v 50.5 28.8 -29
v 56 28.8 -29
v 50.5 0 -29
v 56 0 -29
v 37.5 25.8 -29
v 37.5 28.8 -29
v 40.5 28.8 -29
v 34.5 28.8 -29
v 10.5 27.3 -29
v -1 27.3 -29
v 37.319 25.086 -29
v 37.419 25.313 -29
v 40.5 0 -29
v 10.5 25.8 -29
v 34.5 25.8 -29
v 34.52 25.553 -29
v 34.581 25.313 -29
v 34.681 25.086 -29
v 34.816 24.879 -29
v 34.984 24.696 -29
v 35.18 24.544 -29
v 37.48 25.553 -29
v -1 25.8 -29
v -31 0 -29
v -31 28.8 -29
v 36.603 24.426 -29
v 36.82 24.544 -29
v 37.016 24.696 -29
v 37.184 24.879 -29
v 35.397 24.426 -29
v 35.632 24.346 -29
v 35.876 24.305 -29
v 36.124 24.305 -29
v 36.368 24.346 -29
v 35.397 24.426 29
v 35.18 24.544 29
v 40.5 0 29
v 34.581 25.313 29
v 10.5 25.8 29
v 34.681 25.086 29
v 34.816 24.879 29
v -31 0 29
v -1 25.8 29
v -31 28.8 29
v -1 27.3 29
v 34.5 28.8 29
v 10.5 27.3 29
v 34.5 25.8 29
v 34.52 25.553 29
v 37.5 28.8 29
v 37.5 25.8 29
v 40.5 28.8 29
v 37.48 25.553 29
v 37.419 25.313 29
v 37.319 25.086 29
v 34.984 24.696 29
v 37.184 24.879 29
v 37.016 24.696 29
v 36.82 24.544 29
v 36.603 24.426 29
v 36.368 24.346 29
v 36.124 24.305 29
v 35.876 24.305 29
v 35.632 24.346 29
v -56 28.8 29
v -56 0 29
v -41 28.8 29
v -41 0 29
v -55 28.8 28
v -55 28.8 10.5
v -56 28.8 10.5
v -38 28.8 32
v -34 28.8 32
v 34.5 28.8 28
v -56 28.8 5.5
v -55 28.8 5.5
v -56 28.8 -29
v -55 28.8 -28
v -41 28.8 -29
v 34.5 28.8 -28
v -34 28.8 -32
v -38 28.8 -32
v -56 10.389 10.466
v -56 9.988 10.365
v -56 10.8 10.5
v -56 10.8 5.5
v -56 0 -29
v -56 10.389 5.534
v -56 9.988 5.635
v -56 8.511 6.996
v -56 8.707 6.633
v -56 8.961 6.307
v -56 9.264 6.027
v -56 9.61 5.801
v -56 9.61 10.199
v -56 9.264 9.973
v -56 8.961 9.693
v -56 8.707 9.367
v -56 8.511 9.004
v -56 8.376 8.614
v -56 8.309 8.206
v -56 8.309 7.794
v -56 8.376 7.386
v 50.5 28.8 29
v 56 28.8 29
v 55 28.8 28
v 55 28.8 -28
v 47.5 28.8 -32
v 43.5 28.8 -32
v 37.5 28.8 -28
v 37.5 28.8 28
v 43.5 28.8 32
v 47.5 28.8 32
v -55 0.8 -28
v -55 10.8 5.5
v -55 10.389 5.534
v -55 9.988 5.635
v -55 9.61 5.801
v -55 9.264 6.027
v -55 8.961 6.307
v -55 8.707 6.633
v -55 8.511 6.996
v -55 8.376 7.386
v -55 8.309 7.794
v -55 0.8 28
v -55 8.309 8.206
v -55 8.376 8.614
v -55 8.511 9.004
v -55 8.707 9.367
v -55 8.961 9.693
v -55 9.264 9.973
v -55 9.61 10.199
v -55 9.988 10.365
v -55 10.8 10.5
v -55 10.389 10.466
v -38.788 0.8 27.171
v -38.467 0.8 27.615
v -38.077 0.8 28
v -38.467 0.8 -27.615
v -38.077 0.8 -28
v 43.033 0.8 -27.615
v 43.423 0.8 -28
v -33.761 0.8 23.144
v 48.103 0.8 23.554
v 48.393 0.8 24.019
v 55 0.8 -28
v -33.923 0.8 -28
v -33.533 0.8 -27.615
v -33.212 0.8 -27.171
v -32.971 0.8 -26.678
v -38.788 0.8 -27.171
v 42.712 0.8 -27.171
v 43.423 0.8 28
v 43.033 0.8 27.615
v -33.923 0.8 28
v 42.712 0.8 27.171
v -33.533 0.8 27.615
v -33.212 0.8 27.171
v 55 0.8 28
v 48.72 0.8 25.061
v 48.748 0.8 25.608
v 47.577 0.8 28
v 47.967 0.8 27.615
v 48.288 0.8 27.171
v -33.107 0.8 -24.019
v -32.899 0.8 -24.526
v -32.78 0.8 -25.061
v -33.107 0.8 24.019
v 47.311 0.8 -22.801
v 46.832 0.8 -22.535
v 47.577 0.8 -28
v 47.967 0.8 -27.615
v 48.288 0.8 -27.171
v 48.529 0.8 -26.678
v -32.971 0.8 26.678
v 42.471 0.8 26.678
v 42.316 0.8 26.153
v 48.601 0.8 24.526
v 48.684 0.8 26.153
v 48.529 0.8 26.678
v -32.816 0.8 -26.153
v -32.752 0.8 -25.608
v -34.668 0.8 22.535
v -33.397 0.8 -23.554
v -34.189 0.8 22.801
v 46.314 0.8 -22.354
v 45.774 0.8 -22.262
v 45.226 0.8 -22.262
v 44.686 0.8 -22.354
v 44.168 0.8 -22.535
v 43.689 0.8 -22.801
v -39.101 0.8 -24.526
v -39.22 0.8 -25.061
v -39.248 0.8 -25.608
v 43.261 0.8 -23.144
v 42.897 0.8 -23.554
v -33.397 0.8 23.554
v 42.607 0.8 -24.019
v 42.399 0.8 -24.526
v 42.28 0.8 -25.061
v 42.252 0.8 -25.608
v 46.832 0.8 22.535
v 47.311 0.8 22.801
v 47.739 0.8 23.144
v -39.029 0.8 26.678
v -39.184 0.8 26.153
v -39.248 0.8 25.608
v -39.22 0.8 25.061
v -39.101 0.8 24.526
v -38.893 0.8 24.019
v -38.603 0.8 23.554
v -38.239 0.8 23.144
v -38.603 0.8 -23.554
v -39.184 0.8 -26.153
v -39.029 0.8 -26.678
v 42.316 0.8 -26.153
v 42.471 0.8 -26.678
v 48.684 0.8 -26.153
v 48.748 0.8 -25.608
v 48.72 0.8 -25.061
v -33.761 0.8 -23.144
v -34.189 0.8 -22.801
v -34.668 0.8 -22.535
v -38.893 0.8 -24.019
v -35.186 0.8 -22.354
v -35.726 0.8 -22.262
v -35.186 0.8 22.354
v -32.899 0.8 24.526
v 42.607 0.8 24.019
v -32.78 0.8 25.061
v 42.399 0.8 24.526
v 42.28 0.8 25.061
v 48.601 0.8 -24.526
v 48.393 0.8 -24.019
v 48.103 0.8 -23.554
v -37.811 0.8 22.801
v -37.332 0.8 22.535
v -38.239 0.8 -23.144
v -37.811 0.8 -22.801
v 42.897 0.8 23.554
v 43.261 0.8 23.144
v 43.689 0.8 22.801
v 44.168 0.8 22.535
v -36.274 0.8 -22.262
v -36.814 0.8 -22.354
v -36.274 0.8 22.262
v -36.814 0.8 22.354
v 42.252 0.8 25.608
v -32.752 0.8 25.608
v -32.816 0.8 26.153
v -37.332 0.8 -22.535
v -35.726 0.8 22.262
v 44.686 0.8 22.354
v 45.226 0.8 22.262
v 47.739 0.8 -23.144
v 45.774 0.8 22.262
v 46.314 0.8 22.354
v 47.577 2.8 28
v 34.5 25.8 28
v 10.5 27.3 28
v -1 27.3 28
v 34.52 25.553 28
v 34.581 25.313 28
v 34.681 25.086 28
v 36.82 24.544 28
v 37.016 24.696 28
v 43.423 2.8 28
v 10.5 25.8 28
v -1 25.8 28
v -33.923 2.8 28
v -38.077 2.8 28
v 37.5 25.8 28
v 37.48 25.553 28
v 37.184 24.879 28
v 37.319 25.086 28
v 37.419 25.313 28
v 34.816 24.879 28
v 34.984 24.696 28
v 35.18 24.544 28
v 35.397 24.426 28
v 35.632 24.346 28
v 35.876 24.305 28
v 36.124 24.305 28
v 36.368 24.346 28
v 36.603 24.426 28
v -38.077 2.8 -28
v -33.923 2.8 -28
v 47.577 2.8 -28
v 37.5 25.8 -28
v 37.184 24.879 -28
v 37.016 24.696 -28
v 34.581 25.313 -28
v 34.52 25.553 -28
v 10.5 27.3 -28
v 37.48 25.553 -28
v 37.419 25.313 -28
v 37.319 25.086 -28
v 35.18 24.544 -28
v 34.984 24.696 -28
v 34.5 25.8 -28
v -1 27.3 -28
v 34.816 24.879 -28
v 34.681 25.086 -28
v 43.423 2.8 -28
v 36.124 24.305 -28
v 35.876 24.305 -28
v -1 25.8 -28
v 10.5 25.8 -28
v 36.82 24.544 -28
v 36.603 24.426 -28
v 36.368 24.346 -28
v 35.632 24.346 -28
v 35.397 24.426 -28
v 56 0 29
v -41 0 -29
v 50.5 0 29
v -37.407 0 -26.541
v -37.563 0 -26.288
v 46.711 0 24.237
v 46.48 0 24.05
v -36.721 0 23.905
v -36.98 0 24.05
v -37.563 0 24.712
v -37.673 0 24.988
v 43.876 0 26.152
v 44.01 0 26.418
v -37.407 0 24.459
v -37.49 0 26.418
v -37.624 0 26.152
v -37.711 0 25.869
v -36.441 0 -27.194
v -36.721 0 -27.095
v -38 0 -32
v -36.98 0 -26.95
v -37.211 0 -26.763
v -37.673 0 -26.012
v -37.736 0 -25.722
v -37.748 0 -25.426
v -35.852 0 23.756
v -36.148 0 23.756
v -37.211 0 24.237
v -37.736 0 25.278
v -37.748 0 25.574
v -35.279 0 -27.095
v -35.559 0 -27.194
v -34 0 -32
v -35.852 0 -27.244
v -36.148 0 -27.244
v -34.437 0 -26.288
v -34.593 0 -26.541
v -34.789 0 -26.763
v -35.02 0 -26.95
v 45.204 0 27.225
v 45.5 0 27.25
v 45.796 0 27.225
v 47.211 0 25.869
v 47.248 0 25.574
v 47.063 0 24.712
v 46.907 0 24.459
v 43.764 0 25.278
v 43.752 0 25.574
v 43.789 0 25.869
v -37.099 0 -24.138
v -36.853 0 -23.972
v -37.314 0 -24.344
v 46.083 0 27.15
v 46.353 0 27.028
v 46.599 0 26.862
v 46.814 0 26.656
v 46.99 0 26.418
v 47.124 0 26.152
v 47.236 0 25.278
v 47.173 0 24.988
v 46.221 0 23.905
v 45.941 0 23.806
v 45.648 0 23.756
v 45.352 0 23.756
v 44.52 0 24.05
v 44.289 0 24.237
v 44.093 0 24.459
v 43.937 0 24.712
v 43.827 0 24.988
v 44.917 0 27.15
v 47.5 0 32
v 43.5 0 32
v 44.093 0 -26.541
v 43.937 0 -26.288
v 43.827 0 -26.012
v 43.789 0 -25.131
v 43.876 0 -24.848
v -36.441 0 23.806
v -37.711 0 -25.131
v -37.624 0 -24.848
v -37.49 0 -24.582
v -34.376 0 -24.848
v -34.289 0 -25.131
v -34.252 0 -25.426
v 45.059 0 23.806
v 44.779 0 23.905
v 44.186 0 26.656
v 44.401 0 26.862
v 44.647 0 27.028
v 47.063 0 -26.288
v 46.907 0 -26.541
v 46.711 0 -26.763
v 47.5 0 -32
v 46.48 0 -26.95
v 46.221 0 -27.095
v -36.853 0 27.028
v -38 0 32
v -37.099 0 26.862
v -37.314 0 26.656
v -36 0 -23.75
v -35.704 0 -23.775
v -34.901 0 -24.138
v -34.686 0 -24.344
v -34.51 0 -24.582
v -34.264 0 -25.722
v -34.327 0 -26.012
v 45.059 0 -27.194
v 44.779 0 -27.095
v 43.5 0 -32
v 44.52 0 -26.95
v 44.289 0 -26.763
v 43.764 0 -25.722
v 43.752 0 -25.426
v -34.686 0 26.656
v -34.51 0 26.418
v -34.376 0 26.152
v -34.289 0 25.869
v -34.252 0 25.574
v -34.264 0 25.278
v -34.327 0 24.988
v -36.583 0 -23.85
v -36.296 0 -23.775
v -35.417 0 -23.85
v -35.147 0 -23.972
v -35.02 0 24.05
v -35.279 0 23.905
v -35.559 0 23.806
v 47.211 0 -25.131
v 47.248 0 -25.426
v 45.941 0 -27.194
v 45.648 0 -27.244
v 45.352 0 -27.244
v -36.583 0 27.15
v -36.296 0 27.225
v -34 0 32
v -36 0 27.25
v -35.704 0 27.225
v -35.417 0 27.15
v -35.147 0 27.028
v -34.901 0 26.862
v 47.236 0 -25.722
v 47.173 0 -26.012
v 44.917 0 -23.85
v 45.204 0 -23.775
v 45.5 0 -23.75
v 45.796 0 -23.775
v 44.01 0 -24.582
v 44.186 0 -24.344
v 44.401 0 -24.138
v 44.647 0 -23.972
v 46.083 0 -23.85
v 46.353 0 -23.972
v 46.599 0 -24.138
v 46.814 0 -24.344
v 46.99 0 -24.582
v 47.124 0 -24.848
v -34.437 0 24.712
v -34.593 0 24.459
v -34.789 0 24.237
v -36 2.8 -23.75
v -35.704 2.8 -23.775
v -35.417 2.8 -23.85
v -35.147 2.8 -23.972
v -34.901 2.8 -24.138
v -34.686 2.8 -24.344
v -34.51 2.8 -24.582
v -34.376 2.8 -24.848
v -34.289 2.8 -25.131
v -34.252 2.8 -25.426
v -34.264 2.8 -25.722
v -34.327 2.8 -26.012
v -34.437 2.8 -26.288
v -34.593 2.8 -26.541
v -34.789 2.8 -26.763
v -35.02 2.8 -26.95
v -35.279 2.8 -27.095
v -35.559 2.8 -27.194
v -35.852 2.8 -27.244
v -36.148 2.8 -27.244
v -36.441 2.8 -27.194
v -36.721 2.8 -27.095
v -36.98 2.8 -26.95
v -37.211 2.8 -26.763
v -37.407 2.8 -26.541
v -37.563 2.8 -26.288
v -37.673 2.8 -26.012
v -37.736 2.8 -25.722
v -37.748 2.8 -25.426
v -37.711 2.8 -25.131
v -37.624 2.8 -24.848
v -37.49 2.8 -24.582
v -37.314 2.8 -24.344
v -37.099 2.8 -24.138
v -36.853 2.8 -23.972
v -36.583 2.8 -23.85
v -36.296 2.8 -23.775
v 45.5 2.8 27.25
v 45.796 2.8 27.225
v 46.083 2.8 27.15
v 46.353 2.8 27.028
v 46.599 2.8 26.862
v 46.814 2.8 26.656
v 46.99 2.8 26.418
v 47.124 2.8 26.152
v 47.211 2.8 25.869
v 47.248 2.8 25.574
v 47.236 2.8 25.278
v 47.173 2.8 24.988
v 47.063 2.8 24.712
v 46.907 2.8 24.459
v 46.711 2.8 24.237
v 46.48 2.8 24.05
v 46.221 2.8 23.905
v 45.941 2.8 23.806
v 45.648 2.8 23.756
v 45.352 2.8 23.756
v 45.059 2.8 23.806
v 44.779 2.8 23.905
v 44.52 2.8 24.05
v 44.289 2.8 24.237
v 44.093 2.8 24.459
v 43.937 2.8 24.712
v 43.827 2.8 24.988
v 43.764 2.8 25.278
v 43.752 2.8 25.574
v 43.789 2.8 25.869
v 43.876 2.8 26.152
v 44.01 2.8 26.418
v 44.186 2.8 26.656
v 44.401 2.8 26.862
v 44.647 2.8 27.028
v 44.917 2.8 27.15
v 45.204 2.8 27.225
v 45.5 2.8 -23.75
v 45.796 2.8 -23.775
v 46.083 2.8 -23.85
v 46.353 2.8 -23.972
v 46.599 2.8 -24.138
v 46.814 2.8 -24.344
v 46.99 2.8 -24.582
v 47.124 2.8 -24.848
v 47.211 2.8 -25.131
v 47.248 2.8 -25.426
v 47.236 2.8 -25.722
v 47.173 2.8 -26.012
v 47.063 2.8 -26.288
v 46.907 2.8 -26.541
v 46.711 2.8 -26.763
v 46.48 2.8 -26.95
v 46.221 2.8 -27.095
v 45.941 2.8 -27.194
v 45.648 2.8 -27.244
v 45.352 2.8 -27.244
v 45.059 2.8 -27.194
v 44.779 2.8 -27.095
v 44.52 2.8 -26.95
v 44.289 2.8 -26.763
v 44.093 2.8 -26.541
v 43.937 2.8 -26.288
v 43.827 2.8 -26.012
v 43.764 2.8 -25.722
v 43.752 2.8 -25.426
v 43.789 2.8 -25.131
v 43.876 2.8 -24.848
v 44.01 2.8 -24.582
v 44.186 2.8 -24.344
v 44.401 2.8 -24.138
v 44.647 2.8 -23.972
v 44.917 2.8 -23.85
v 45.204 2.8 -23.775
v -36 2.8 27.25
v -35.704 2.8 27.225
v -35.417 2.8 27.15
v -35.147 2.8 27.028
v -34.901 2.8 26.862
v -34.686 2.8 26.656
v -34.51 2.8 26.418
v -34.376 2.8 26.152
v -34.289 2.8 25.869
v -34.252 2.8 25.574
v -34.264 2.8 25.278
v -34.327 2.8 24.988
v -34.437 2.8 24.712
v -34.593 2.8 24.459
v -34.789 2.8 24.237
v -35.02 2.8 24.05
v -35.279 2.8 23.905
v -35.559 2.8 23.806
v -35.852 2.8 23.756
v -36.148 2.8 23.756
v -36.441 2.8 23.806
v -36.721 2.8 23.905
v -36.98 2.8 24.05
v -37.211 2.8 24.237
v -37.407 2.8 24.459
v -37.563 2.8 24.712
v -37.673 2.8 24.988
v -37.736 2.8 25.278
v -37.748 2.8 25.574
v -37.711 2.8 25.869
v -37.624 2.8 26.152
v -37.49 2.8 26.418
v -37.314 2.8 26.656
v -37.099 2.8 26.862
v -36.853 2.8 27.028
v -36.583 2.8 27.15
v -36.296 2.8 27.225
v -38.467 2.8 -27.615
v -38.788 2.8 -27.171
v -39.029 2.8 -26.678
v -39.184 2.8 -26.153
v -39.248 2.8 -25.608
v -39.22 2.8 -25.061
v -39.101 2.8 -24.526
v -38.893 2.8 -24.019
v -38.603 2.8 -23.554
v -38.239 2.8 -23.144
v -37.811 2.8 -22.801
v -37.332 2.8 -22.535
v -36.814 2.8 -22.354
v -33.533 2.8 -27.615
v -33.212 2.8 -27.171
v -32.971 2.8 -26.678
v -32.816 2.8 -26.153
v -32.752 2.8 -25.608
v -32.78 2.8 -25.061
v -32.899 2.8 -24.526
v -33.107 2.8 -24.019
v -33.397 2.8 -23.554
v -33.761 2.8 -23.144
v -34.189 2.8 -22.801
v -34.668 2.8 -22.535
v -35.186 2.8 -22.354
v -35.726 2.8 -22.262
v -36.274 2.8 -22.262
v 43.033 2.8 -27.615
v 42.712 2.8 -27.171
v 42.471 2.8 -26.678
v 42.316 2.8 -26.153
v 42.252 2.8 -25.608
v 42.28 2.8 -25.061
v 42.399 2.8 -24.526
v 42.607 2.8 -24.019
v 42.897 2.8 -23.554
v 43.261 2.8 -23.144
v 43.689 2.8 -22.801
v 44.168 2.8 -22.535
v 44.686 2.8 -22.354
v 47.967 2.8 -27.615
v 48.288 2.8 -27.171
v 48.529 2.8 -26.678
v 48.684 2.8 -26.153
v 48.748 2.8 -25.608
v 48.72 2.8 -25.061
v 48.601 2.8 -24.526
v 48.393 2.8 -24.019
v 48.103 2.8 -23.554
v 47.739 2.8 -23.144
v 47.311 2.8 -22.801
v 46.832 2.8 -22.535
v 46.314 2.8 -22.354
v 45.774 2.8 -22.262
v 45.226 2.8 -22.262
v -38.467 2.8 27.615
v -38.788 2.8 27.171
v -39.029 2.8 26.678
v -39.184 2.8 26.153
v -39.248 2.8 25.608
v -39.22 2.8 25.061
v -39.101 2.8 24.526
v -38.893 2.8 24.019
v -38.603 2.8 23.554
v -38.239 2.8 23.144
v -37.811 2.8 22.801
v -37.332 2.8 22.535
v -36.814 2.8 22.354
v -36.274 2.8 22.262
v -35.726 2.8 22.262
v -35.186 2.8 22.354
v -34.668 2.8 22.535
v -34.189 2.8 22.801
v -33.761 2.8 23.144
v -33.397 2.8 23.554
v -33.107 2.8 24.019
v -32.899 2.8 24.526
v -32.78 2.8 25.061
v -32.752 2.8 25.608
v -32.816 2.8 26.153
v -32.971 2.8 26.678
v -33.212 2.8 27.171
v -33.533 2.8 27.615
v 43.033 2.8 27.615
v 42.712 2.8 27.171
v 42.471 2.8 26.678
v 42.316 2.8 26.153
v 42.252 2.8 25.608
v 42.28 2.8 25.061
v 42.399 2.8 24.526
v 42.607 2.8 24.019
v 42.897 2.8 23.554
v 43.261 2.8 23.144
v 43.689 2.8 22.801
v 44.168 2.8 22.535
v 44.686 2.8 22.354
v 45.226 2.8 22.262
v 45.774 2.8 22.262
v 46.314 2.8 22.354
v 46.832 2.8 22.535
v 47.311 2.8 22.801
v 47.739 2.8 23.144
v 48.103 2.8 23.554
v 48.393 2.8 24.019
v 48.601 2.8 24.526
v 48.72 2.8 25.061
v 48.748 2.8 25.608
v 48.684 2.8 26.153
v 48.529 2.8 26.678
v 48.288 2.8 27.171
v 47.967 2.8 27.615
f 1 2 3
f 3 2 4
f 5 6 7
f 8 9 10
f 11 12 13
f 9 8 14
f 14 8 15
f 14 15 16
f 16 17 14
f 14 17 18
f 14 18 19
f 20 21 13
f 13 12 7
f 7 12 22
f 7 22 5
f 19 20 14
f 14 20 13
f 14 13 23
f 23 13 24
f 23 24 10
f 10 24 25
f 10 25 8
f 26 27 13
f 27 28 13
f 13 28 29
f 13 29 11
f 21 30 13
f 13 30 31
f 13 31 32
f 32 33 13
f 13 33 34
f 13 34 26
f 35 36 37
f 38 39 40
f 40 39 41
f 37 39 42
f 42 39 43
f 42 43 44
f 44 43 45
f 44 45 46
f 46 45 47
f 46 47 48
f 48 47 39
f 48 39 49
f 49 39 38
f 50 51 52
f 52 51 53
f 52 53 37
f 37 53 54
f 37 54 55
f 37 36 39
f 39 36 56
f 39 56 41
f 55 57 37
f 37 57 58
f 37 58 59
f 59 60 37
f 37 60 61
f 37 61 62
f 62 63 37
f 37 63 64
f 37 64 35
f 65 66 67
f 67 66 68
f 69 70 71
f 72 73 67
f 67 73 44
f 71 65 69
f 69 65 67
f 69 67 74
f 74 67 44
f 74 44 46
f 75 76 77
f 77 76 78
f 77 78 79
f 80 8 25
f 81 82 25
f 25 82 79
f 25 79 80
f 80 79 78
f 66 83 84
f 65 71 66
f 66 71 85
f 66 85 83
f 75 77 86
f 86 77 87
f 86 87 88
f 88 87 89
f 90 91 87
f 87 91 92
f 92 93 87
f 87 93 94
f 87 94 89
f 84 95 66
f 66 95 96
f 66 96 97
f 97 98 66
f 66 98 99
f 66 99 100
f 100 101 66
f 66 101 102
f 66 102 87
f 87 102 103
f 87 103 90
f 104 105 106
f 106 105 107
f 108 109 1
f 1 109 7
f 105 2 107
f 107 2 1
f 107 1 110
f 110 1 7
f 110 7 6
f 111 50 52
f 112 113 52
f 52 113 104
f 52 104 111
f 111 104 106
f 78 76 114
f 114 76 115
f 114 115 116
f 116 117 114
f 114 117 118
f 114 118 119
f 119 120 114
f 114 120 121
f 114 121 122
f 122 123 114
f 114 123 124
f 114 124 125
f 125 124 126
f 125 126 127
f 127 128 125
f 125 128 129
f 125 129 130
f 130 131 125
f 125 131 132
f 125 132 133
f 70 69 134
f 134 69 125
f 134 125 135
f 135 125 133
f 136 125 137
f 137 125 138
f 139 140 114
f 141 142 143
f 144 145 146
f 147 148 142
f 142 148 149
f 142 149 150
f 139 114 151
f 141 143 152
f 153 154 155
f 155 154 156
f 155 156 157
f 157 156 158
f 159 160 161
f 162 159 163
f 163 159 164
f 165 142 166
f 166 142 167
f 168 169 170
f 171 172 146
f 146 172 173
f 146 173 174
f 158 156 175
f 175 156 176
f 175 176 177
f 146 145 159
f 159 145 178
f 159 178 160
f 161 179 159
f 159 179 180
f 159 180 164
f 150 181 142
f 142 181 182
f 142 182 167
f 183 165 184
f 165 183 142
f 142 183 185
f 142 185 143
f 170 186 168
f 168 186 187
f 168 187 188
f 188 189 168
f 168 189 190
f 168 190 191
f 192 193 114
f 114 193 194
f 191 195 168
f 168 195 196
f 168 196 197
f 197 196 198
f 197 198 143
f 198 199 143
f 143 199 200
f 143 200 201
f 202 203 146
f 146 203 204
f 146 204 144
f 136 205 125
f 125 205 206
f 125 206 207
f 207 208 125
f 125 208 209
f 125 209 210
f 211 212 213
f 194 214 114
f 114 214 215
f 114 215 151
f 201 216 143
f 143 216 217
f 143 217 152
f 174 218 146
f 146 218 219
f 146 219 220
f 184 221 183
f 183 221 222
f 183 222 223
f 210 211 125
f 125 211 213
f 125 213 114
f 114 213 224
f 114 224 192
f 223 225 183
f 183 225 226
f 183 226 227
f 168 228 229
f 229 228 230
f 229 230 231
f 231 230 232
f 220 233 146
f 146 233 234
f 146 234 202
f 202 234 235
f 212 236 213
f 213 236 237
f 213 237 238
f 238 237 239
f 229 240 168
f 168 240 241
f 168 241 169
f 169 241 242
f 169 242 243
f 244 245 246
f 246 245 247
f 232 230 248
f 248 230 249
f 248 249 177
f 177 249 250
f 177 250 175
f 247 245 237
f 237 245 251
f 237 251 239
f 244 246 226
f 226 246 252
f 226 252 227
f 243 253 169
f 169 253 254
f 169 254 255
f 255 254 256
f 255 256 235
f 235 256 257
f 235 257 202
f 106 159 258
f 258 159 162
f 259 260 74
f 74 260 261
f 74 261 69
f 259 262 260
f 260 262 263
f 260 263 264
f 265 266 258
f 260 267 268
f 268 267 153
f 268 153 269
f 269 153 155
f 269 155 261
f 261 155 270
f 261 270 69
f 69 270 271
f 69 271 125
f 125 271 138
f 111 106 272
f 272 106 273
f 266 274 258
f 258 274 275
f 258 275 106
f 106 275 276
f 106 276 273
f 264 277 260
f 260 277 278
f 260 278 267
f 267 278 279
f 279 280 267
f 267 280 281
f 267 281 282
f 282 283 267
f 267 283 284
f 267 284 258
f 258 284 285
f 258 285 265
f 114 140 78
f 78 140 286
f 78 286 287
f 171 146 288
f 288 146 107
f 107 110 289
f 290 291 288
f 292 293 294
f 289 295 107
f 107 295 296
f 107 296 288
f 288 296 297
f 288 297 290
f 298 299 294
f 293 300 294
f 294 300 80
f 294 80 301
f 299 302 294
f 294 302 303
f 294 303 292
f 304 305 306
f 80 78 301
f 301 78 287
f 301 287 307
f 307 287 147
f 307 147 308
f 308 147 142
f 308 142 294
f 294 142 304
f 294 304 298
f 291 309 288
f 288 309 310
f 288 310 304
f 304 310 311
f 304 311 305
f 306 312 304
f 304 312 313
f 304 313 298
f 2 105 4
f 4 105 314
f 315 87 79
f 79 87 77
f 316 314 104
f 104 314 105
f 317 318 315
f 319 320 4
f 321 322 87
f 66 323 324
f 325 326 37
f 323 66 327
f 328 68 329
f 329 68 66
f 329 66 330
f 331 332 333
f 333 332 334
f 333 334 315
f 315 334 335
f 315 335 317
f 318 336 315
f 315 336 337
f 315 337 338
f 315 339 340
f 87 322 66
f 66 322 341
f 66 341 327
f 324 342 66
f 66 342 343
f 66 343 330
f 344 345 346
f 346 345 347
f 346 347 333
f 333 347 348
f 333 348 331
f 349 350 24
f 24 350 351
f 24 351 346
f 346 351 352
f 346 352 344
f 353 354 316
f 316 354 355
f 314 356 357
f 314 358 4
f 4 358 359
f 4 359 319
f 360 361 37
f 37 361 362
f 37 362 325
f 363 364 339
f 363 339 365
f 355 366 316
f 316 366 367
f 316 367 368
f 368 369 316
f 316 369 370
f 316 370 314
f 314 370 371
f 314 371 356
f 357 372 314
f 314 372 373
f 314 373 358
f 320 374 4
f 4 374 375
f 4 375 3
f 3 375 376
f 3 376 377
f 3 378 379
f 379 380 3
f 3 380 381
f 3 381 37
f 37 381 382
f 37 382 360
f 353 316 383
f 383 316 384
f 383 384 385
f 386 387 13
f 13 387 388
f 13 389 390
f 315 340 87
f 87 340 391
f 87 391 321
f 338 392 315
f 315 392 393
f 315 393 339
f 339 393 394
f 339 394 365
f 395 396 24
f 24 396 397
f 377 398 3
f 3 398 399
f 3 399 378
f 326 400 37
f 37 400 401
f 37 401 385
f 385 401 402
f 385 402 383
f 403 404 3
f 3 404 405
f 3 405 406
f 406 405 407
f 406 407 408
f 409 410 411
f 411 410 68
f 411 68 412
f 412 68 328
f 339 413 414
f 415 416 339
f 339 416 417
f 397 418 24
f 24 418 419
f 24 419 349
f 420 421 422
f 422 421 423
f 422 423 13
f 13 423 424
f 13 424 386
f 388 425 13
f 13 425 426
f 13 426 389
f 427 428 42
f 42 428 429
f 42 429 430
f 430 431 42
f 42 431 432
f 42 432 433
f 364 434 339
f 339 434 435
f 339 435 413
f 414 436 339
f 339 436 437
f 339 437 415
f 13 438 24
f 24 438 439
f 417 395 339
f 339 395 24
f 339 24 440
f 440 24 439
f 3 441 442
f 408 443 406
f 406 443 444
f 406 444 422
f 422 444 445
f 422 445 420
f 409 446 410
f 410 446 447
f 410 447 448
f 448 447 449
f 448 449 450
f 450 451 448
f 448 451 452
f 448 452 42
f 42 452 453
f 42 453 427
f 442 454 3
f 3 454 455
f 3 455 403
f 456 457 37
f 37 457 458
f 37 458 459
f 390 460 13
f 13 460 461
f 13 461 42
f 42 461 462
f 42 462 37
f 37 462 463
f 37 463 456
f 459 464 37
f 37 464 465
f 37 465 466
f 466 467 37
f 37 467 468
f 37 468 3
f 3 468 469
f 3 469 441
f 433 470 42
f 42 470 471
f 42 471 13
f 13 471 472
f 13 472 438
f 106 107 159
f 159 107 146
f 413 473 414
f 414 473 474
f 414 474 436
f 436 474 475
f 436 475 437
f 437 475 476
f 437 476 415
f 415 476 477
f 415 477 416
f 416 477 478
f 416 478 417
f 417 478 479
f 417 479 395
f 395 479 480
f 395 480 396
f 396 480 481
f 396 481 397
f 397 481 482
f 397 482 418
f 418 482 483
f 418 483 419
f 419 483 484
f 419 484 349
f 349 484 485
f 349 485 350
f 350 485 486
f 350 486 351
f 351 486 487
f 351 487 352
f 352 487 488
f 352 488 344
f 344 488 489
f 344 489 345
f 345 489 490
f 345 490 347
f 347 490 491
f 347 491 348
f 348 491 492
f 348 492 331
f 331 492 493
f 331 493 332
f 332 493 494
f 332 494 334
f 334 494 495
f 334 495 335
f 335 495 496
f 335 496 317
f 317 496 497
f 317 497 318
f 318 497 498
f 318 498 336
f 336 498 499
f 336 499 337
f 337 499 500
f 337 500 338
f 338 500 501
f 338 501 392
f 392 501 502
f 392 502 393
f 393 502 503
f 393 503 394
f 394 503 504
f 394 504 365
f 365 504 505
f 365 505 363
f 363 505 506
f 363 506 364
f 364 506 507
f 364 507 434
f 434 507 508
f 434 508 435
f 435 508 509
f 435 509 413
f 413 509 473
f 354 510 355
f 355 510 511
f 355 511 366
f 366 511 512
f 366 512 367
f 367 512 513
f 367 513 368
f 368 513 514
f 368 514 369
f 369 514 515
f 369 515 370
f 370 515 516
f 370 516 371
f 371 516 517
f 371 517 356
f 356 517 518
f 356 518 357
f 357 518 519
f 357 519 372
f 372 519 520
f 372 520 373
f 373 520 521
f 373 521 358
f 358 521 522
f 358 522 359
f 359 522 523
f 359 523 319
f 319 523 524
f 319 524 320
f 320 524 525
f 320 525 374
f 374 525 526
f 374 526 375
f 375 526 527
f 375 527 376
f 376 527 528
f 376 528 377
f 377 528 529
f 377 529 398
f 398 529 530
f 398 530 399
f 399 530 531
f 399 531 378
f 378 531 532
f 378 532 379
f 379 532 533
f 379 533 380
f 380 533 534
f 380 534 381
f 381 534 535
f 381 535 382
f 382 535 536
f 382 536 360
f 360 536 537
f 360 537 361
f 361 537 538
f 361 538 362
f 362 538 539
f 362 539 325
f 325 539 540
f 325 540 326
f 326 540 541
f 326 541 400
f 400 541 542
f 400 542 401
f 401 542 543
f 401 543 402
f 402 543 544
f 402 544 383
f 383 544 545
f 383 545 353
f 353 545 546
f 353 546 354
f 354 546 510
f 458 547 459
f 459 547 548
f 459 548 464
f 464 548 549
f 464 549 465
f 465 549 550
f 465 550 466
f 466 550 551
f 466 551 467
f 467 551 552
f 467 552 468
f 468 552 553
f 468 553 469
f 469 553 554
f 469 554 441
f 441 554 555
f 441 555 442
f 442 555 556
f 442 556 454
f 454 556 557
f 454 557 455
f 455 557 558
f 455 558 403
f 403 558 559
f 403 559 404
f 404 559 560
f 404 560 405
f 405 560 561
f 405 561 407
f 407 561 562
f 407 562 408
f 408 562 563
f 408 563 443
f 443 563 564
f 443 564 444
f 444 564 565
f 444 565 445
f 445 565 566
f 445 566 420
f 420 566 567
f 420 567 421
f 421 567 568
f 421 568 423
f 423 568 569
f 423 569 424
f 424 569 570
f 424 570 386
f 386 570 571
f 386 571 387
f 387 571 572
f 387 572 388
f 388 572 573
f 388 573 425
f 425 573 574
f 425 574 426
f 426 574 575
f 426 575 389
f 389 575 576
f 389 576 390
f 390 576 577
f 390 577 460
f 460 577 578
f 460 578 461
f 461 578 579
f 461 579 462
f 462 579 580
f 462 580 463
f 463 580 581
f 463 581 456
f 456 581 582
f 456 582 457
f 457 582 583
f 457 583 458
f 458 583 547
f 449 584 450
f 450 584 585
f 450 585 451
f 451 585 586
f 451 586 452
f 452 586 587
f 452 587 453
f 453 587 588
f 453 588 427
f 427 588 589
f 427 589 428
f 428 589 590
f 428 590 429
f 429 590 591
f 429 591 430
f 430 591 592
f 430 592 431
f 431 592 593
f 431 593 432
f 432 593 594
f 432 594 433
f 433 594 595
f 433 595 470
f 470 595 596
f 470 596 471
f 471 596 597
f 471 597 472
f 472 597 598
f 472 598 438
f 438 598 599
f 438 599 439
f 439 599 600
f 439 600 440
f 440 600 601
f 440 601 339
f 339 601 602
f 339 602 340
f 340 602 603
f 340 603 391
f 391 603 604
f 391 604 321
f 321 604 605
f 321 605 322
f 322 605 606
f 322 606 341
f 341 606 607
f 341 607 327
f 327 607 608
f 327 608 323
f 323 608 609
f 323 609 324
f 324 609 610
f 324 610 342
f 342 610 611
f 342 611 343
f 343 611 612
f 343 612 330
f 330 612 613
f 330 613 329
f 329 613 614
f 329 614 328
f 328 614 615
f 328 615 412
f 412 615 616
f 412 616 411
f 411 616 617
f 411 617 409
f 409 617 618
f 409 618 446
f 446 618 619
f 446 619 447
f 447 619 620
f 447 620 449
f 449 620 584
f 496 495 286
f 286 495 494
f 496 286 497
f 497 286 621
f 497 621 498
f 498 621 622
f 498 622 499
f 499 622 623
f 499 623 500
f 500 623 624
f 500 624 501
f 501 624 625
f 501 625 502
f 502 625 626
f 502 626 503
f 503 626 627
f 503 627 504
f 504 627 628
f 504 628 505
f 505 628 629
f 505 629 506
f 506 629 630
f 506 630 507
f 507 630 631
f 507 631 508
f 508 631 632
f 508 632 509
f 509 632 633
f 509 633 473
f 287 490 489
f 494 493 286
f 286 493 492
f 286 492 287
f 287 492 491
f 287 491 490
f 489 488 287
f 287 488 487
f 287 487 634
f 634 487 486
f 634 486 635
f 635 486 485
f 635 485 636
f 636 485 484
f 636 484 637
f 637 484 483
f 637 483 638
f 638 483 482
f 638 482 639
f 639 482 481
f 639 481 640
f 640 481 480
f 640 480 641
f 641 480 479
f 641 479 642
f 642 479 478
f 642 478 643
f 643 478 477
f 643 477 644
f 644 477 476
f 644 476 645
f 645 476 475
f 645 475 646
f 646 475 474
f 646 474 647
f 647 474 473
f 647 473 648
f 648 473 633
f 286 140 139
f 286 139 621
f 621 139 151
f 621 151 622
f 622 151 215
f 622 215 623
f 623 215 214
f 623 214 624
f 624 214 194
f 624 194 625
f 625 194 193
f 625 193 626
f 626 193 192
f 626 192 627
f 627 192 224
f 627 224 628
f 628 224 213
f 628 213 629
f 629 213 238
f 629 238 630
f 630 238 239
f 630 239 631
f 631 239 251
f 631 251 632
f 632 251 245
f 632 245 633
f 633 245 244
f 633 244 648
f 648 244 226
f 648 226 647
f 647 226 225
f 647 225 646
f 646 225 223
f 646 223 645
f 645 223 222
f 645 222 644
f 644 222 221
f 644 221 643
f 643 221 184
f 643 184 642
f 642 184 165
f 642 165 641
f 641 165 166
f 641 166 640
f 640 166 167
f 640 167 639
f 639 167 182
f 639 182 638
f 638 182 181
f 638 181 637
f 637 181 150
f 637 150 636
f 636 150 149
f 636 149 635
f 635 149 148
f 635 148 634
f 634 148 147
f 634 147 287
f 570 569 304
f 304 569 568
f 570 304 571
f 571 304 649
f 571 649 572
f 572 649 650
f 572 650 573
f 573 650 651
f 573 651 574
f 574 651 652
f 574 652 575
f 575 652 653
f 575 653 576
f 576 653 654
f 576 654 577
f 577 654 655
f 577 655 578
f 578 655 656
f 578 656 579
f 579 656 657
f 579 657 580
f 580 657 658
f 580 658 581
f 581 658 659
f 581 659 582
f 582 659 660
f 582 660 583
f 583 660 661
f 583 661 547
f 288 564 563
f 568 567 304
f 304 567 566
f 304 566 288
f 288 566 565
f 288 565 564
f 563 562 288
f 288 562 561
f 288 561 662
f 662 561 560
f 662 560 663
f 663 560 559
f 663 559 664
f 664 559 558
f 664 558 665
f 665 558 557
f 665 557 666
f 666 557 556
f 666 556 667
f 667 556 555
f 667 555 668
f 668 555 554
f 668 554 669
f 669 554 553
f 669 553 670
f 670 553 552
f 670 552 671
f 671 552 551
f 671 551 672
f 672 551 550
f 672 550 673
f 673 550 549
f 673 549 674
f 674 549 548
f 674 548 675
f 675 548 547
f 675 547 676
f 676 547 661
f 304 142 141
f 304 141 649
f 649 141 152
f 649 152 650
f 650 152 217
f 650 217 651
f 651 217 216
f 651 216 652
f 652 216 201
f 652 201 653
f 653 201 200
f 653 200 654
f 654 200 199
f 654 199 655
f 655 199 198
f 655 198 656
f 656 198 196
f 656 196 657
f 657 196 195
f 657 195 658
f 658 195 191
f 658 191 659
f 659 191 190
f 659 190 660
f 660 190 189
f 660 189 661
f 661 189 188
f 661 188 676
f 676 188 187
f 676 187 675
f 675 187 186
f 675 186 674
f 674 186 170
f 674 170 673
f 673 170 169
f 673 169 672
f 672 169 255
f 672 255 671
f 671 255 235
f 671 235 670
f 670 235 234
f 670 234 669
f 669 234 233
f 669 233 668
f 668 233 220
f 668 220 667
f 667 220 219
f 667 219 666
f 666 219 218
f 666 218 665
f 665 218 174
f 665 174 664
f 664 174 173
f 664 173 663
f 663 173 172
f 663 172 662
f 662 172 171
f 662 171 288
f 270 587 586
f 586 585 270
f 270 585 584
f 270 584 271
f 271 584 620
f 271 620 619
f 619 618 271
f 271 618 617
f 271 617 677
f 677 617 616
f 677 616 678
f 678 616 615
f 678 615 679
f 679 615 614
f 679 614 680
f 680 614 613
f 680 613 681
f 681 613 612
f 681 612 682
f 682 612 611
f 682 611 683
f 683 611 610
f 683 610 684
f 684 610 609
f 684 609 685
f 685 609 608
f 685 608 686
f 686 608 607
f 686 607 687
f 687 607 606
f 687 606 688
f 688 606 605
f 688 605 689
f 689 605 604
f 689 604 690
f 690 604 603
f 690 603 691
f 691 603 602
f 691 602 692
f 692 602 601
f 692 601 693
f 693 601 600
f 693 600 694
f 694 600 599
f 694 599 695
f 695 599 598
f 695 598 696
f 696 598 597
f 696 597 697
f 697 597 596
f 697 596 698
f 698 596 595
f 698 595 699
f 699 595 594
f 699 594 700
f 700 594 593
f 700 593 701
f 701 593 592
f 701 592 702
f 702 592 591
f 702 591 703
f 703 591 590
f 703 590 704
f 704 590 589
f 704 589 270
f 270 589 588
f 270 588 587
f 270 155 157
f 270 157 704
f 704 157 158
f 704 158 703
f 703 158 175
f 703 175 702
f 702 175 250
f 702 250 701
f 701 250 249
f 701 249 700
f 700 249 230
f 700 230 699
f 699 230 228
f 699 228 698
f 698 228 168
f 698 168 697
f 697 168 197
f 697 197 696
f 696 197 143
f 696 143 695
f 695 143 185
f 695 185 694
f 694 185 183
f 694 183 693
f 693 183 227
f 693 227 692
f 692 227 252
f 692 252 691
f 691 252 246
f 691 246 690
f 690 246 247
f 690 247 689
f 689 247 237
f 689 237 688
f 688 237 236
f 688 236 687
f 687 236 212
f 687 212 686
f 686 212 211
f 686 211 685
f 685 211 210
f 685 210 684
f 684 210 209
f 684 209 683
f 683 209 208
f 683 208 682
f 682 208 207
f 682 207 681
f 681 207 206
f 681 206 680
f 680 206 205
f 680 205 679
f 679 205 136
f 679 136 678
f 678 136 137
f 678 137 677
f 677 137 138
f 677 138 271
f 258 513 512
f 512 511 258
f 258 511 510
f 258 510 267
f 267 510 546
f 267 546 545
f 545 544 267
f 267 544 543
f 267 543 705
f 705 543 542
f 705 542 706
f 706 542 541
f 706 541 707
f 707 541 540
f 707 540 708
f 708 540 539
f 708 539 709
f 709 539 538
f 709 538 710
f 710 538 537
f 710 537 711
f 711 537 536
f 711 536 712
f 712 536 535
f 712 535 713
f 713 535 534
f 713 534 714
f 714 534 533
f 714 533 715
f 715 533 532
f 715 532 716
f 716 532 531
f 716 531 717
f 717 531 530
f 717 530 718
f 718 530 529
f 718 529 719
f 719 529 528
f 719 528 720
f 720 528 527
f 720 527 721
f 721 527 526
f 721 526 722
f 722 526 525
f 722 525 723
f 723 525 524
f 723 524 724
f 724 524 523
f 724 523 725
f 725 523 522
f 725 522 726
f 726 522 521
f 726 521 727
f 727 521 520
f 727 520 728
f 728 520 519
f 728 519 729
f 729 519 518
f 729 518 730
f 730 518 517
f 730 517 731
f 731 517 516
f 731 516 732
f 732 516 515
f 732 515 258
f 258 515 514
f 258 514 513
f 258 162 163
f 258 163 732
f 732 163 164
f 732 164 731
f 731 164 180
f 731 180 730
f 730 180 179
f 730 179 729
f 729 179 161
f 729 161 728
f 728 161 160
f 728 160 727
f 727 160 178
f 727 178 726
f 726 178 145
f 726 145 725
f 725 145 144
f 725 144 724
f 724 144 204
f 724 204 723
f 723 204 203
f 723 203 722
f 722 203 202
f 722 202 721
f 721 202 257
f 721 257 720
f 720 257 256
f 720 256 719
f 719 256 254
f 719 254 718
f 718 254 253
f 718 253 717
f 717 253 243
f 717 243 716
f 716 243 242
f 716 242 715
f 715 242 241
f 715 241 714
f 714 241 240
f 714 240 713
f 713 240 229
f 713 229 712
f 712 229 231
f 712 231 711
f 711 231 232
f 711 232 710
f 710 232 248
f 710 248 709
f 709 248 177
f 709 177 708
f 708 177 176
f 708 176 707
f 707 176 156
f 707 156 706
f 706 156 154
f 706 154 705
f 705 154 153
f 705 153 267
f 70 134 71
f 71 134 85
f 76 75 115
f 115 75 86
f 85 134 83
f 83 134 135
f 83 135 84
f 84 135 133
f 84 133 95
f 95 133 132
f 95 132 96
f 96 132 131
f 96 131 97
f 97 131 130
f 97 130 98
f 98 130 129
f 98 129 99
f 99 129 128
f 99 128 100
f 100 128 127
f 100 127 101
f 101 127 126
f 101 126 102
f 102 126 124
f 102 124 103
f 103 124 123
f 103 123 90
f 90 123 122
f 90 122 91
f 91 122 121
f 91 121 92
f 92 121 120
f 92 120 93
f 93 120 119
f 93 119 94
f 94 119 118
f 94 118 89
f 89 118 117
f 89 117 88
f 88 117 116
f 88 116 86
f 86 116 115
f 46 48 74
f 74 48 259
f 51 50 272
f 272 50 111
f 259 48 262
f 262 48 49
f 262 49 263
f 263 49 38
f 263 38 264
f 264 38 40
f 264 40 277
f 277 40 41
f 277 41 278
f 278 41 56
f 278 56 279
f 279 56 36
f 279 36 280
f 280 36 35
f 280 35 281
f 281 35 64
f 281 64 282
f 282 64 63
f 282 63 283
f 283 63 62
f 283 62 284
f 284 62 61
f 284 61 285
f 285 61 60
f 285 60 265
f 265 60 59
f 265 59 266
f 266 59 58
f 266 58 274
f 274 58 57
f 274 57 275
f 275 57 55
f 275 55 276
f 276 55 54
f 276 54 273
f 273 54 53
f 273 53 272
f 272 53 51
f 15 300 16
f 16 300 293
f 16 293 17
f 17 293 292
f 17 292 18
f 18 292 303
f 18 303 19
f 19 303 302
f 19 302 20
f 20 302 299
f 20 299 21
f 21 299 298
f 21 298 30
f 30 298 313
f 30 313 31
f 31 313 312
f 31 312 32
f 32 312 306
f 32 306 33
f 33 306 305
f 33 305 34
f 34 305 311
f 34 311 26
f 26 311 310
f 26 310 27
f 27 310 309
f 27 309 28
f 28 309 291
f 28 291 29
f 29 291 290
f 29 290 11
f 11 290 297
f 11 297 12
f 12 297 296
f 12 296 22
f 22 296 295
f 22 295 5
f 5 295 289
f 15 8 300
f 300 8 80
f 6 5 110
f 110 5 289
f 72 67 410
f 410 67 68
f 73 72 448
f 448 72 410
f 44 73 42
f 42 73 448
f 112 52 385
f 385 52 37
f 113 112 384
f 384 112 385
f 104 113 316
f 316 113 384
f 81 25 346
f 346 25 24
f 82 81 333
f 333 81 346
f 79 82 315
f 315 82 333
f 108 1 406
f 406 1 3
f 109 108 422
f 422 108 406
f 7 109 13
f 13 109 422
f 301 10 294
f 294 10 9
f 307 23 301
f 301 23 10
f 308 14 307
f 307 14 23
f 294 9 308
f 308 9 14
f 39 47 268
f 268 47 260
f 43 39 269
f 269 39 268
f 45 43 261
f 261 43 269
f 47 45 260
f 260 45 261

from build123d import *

# Parameters (mm, degrees)
SKETCH1_W           = 112
SKETCH1_H           = 58
BOSS_EXTRUDE1_DEPTH = 0.8
SKETCH2_W           = 112
SKETCH2_H           = 58
SKETCH2_W_2         = 110
SKETCH2_H_2         = 56
BOSS_EXTRUDE2_DEPTH = 28
SKETCH3_R           = 1.75
CUT_EXTRUDE1_DEPTH  = 28
BOSS_EXTRUDE3_START = 2
SKETCH4_R           = 3.25
SKETCH4_R_2         = 1.75
BOSS_EXTRUDE3_DEPTH = 2
CUT_EXTRUDE2_DEPTH  = 2
CUT_EXTRUDE3_DEPTH  = 72
BOSS_EXTRUDE4_DEPTH = 28.8
SKETCH8_W           = 11.5
SKETCH8_H           = 1.5
CUT_EXTRUDE4_DEPTH  = 70


with BuildPart() as part:
    # Sketch1 → Boss-Extrude1 (new body)
    with BuildSketch(Plane(origin=(0, 0, 0), x_dir=(1, 0, 0), z_dir=(0, 1, 0))):
        Rectangle(SKETCH1_W, SKETCH1_H)
    extrude(amount=BOSS_EXTRUDE1_DEPTH)

    # Sketch2 → Boss-Extrude2 (add)
    with BuildSketch(Plane(origin=(0, 0.8, 0), x_dir=(1, 0, 0), z_dir=(0, 1, 0))):
        Rectangle(SKETCH2_W, SKETCH2_H)
        Rectangle(SKETCH2_W_2, SKETCH2_H_2, mode=Mode.SUBTRACT)
    extrude(amount=BOSS_EXTRUDE2_DEPTH)

    # Sketch3 → Cut-Extrude1 (cut)
    with BuildSketch(Plane(origin=(0, 0.8, 0), x_dir=(1, 0, 0), z_dir=(0, 1, 0))):
        with Locations(Location((-36, 25.5, 0), (0, 0, 270))):
            Circle(SKETCH3_R)
        with Locations(Location((-36, -25.5, 0), (0, 0, 270))):
            Circle(SKETCH3_R)
        with Locations(Location((45.5, 25.5, 0), (0, 0, 270))):
            Circle(SKETCH3_R)
        with Locations(Location((45.5, -25.5, 0), (0, 0, 270))):
            Circle(SKETCH3_R)
    extrude(amount=-CUT_EXTRUDE1_DEPTH, mode=Mode.SUBTRACT)

    # Sketch4 → Boss-Extrude3 (add)
    # profile 1 of 4: a face of its own
    with BuildSketch(Plane(origin=(0, 0.8, 0), x_dir=(1, 0, 0), z_dir=(0, 1, 0)).offset(BOSS_EXTRUDE3_START)):
        with Locations((-36, 25.5)):
            Circle(SKETCH4_R)
        with Locations(Location((-36, 25.5, 0), (0, 0, 270))):
            Circle(SKETCH4_R_2, mode=Mode.SUBTRACT)
    # profile 2 of 4: a face of its own
    with BuildSketch(Plane(origin=(0, 0.8, 0), x_dir=(1, 0, 0), z_dir=(0, 1, 0)).offset(BOSS_EXTRUDE3_START)):
        with Locations((45.5, 25.5)):
            Circle(SKETCH4_R)
        with Locations(Location((45.5, 25.5, 0), (0, 0, 270))):
            Circle(SKETCH4_R_2, mode=Mode.SUBTRACT)
    # profile 3 of 4: a face of its own
    with BuildSketch(Plane(origin=(0, 0.8, 0), x_dir=(1, 0, 0), z_dir=(0, 1, 0)).offset(BOSS_EXTRUDE3_START)):
        with Locations((-36, -25.5)):
            Circle(SKETCH4_R)
        with Locations(Location((-36, -25.5, 0), (0, 0, 270))):
            Circle(SKETCH4_R_2, mode=Mode.SUBTRACT)
    # profile 4 of 4: a face of its own
    with BuildSketch(Plane(origin=(0, 0.8, 0), x_dir=(1, 0, 0), z_dir=(0, 1, 0)).offset(BOSS_EXTRUDE3_START)):
        with Locations((45.5, -25.5)):
            Circle(SKETCH4_R)
        with Locations(Location((45.5, -25.5, 0), (0, 0, 270))):
            Circle(SKETCH4_R_2, mode=Mode.SUBTRACT)
    extrude(amount=-BOSS_EXTRUDE3_DEPTH)

    # Sketch5 → Cut-Extrude2 (cut)
    with BuildSketch(Plane(origin=(-55, 0, 0), x_dir=(0, 0, -1), z_dir=(1, 0, 0))):
        with BuildLine():
            Line((-10.5, 28.8), (-10.5, 10.8))
            ThreePointArc((-10.5, 10.8), (-8, 8.3), (-5.5, 10.8))
            Line((-5.5, 10.8), (-5.5, 28.8))
            Line((-5.5, 28.8), (-10.5, 28.8))
        make_face()
    extrude(amount=-CUT_EXTRUDE2_DEPTH, mode=Mode.SUBTRACT)

    # Sketch6 → Cut-Extrude3 (cut)
    with BuildSketch(Plane.XY.offset(29)):
        with BuildLine():
            Line((34.5, 25.8), (34.5, 28.8))
            Line((34.5, 28.8), (37.5, 28.8))
            Line((37.5, 28.8), (37.5, 25.8))
            ThreePointArc((37.5, 25.8), (36, 24.3), (34.5, 25.8))
        make_face()
    extrude(amount=-CUT_EXTRUDE3_DEPTH, mode=Mode.SUBTRACT)

    # Sketch7 → Boss-Extrude4 (add)
    with BuildSketch(Plane.XZ):
        Polygon((-41, 29), (-38, 32), (-34, 32), (-31, 29), align=None)
        Polygon((40.5, 29), (43.5, 32), (47.5, 32), (50.5, 29), align=None)
        Polygon((-41, -29), (-38, -32), (-34, -32), (-31, -29), align=None)
        Polygon((40.5, -29), (43.5, -32), (47.5, -32), (50.5, -29), align=None)
    extrude(amount=-BOSS_EXTRUDE4_DEPTH)

    # Sketch8 → Cut-Extrude4 (cut)
    with BuildSketch(Plane.XY.offset(29)):
        with Locations((4.75, 26.55)):
            Rectangle(SKETCH8_W, SKETCH8_H)
    extrude(amount=-CUT_EXTRUDE4_DEPTH, mode=Mode.SUBTRACT)


solid = part.part
